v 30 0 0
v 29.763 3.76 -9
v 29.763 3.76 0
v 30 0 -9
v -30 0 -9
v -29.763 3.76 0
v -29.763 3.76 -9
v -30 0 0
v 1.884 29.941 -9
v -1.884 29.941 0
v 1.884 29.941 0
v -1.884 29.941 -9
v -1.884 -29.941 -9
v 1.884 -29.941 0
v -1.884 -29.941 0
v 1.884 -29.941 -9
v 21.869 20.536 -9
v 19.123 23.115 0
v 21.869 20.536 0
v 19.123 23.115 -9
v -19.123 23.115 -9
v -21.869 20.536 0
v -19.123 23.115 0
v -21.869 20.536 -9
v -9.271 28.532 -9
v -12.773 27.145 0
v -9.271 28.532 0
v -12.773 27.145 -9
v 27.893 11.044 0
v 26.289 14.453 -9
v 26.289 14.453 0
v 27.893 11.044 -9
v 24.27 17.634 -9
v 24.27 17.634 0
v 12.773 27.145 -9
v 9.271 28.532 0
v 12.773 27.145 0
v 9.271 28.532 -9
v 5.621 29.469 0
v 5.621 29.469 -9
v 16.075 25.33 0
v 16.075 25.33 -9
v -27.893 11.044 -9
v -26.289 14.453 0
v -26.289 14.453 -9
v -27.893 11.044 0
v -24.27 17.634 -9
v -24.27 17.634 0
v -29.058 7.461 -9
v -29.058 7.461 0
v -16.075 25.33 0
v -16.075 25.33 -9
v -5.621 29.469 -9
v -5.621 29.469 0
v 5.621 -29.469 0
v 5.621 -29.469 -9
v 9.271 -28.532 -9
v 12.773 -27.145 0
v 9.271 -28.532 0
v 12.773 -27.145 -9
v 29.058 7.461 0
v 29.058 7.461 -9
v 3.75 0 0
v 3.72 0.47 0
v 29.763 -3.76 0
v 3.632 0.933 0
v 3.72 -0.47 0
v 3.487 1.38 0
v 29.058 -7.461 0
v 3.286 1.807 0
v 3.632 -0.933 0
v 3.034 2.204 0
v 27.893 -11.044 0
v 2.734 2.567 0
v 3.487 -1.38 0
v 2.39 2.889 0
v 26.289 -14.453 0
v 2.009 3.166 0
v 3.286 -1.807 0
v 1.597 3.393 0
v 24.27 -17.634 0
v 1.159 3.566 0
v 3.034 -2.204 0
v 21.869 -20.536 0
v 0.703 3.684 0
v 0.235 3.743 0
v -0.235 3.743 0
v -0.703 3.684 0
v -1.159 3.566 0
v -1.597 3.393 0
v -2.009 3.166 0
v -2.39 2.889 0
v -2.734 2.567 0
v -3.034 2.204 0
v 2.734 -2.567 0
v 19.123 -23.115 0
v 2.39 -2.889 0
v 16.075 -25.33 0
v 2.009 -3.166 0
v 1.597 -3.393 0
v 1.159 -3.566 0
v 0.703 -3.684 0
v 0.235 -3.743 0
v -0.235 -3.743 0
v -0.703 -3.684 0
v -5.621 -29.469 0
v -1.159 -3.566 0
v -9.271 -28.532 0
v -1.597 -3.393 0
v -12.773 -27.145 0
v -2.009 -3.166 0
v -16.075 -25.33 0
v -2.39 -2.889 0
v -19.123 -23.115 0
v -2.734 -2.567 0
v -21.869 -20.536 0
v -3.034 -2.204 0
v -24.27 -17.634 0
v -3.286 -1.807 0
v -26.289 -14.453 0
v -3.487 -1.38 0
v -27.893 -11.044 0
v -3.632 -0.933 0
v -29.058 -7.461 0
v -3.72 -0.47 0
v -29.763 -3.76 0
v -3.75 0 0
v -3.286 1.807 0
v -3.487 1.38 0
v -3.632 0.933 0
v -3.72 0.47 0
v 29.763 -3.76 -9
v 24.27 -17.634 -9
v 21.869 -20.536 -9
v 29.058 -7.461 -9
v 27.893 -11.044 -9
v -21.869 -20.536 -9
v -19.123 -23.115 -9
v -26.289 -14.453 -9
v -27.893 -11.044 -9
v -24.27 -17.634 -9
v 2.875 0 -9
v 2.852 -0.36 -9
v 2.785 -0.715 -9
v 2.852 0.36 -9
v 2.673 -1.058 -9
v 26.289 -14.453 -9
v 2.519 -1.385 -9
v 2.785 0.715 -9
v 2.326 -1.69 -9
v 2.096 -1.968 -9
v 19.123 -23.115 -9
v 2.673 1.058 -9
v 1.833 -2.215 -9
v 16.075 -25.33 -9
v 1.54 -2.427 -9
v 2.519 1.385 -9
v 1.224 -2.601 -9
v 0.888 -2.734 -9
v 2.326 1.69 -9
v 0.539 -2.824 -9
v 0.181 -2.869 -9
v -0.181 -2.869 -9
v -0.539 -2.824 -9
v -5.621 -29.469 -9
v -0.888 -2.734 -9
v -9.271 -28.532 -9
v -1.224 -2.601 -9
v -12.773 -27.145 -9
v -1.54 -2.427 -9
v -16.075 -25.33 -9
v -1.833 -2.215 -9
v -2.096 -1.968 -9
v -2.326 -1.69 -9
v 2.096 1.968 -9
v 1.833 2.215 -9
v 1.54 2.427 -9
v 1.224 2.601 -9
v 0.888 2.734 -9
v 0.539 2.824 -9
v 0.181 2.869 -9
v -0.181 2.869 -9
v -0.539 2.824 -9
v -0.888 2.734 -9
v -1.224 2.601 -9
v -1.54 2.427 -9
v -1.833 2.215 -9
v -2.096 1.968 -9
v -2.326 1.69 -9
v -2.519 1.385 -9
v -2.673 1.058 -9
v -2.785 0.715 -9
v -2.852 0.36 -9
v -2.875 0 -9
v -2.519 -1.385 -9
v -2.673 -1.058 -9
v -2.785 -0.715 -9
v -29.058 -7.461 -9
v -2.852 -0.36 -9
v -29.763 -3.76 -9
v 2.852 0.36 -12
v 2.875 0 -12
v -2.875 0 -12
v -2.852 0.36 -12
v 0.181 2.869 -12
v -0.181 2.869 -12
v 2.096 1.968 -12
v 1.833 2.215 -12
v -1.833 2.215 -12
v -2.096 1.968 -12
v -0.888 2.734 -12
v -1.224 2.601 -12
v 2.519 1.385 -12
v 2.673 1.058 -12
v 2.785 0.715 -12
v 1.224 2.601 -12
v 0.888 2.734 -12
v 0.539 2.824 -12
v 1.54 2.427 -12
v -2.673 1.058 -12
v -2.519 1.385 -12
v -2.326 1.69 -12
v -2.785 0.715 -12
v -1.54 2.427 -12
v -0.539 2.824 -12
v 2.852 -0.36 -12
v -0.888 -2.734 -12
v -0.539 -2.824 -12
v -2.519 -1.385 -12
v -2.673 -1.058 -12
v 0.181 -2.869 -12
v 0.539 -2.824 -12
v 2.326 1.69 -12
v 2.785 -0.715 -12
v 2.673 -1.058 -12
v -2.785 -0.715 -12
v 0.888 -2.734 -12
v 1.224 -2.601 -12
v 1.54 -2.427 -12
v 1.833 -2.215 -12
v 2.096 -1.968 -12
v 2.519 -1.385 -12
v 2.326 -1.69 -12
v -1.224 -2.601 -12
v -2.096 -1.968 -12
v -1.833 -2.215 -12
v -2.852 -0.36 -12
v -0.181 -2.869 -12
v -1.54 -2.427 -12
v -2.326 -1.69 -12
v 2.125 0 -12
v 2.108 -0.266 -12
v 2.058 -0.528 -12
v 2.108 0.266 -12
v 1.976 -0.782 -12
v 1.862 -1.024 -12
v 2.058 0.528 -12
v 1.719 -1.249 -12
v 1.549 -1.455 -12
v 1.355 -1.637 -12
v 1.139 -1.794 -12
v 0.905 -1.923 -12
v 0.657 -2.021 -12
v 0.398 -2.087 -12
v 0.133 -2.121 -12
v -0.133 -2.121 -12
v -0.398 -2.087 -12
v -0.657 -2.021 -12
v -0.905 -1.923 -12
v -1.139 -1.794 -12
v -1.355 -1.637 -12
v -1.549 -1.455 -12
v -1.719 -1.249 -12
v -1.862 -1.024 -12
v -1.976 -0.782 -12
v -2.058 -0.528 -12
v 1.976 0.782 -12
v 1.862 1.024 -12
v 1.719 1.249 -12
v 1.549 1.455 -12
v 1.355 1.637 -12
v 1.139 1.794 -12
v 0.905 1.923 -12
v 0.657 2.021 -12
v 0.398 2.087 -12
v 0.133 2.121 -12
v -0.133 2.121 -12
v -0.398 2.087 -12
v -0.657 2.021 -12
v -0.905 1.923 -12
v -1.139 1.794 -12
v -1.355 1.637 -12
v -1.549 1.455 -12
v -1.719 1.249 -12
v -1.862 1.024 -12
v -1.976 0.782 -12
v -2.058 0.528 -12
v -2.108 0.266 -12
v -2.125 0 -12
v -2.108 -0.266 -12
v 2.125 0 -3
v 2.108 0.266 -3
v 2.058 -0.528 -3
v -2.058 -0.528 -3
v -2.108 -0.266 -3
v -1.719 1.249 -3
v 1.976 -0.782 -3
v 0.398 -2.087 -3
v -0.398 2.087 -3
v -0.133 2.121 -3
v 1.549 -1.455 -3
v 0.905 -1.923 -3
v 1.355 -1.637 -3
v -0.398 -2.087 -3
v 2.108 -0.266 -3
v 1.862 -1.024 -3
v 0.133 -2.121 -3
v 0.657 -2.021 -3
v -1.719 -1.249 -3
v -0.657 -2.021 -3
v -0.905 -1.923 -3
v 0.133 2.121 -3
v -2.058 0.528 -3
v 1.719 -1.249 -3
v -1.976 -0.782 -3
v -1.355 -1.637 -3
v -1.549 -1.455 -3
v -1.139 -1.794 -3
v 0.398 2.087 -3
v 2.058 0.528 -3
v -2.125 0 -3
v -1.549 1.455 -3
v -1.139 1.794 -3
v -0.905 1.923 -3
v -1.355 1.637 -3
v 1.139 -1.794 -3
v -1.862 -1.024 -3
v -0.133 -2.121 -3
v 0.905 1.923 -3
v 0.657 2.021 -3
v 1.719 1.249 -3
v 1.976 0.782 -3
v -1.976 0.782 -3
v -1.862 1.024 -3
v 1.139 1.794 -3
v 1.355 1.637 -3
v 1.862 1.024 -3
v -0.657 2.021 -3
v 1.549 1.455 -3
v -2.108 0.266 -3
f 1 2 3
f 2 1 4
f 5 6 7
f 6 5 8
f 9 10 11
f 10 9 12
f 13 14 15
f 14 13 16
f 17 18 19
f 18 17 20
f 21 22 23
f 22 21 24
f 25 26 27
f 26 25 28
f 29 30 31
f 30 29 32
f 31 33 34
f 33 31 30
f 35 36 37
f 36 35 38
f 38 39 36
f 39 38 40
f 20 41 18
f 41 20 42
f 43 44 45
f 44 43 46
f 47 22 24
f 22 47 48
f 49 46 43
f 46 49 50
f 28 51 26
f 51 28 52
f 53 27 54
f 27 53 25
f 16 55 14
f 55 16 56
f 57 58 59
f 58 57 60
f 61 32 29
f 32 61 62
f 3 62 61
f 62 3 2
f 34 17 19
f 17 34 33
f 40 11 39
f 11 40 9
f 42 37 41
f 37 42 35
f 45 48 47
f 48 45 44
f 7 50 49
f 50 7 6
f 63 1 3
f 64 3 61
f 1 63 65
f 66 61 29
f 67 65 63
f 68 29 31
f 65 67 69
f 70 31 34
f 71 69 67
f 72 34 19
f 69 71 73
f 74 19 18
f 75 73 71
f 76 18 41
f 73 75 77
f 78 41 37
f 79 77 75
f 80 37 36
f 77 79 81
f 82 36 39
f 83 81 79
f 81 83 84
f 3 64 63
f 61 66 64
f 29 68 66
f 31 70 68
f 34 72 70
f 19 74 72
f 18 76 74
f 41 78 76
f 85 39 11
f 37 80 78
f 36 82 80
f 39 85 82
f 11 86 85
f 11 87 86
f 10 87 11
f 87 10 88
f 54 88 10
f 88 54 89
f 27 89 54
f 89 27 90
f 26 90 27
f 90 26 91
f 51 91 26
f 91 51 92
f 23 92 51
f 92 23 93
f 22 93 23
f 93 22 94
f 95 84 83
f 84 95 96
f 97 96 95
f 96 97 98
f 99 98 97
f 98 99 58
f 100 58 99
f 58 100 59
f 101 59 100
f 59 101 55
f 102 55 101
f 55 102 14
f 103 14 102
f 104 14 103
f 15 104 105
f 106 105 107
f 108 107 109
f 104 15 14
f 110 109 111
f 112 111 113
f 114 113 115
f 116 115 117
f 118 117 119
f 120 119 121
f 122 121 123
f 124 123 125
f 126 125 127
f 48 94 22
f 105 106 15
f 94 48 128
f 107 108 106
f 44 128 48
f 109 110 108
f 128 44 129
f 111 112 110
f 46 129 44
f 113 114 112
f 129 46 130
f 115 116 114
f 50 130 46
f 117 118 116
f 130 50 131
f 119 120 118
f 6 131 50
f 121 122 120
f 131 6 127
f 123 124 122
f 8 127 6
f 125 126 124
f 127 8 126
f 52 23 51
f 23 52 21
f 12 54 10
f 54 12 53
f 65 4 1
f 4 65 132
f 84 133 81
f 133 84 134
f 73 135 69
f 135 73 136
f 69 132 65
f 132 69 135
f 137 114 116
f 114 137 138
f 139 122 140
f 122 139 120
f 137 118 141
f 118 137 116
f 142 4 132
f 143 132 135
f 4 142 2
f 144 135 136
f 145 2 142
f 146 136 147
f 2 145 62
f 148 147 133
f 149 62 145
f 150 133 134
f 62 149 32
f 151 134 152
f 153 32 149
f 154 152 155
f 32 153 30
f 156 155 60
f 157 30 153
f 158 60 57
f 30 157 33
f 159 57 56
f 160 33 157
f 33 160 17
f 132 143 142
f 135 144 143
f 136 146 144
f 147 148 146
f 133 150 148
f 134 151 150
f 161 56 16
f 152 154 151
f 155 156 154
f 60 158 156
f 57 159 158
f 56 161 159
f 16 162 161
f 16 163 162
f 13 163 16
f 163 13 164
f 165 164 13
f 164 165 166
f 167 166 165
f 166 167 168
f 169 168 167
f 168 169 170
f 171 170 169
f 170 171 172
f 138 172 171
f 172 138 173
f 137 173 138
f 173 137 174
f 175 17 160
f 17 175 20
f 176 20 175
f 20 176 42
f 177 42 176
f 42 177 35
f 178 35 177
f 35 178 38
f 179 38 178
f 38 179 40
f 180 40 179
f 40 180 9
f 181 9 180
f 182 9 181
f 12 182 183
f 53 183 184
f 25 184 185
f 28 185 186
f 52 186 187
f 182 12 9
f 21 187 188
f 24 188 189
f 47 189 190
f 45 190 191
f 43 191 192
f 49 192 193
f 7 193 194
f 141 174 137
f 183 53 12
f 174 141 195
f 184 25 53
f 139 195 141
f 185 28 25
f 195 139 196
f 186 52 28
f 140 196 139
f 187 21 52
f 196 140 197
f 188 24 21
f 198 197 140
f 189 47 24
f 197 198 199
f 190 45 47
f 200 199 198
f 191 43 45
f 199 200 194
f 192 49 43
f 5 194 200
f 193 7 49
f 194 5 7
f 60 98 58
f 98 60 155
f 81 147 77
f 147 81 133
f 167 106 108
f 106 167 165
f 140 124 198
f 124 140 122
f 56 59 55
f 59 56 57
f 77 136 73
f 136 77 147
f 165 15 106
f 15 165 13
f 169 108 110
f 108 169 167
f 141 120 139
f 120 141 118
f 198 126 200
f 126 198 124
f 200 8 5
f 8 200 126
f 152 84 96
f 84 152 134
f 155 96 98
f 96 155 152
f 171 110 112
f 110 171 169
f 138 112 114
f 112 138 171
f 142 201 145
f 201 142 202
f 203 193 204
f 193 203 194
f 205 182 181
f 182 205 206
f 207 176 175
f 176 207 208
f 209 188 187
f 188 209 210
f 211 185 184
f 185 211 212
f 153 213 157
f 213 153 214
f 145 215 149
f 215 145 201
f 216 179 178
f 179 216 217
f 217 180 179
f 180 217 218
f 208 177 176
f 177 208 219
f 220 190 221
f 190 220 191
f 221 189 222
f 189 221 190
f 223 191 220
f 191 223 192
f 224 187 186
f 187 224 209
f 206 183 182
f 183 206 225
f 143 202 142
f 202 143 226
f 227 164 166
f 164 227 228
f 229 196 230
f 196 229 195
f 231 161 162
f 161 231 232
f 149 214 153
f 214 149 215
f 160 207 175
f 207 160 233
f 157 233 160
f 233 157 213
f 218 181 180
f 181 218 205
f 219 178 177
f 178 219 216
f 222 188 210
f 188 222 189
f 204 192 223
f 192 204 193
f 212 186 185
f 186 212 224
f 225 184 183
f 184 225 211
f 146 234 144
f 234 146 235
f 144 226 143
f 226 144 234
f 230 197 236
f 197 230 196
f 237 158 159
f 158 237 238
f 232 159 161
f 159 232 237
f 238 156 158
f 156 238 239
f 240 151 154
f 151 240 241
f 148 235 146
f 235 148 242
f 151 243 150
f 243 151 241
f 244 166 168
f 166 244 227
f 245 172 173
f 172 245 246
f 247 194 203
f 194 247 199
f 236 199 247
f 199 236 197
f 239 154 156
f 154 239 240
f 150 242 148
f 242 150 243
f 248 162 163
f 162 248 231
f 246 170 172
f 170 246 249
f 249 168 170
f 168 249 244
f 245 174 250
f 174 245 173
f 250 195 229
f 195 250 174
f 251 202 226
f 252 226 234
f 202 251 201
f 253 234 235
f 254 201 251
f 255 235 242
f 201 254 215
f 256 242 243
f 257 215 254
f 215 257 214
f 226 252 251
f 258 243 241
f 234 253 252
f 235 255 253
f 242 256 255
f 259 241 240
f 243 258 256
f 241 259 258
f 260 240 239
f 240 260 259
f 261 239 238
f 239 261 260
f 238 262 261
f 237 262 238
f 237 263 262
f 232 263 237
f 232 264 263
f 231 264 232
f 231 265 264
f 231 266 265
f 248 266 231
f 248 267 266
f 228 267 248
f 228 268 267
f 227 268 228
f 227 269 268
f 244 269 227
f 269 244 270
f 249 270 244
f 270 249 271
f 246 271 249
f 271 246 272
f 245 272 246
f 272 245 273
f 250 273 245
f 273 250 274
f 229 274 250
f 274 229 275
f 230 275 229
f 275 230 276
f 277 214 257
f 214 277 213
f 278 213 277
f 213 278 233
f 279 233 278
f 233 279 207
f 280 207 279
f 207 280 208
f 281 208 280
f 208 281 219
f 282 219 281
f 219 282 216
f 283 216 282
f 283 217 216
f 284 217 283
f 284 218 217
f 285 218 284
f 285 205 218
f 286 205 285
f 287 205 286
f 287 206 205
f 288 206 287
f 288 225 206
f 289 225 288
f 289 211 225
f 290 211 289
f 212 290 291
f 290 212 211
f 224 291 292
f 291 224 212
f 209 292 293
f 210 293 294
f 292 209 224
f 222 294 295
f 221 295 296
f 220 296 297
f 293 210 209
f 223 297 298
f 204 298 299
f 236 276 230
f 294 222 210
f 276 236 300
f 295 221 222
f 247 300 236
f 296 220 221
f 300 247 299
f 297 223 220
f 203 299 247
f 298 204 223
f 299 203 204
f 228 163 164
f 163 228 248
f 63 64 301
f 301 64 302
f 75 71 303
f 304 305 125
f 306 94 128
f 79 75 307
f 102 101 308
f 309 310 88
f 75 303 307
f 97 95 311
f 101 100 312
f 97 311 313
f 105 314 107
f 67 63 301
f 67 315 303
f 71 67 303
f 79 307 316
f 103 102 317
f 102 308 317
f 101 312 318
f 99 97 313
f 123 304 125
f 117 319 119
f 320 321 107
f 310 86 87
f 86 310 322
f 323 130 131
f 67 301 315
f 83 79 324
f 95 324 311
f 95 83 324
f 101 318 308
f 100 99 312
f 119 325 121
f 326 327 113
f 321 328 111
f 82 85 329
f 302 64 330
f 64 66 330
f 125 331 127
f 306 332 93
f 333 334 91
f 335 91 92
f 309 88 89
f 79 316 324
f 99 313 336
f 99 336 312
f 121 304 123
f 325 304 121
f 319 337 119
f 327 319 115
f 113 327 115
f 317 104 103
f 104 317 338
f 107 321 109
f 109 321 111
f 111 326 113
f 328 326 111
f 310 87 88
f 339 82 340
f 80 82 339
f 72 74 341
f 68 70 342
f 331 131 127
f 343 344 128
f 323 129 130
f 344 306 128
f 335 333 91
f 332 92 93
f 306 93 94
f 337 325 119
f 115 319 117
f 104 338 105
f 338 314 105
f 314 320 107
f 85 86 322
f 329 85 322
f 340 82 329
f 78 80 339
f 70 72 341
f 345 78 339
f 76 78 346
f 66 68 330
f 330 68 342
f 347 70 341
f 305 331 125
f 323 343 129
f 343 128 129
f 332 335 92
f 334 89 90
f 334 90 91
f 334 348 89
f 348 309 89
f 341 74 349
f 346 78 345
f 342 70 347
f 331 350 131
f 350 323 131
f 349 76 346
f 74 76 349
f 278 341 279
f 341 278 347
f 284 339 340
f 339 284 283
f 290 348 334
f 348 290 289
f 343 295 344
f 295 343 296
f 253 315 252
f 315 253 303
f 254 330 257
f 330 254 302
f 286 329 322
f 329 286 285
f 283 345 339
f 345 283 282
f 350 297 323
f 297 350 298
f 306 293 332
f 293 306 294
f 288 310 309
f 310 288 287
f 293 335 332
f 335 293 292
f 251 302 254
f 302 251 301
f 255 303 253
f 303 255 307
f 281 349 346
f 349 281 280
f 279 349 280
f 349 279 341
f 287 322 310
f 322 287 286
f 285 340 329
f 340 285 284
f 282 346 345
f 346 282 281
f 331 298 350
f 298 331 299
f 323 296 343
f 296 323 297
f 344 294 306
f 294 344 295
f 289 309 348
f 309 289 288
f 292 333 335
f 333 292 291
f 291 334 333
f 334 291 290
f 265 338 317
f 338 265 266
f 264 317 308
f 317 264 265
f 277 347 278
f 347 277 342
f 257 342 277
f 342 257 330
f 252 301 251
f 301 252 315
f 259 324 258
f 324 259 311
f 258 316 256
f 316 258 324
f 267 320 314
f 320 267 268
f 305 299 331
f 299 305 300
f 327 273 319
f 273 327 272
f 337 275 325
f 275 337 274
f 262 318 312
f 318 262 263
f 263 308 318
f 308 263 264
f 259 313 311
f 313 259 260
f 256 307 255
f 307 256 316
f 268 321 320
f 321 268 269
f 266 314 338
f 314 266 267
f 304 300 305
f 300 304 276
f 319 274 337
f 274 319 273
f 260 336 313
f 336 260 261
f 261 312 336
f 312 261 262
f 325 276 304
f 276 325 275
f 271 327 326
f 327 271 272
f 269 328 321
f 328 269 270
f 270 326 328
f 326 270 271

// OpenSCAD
$fn = 50;


difference() {
	union() {
		translate(v = [0, 0, -9.0000000000]) {
			cylinder(h = 9, r = 30.0000000000);
		}
		translate(v = [0, 0, -12.0000000000]) {
			cylinder(h = 12, r = 2.8750000000);
		}
	}
	union() {
		translate(v = [0, 0, 0]) {
			rotate(a = [0, 0, 0]) {
				difference() {
					union() {
						translate(v = [0, 0, -12.0000000000]) {
							cylinder(h = 12, r = 2.0000000000);
						}
						translate(v = [0, 0, -3]) {
							cylinder(h = 3, r1 = 2.1250000000, r2 = 3.7500000000);
						}
						translate(v = [0, 0, -12.0000000000]) {
							cylinder(h = 12, r = 2.1250000000);
						}
						translate(v = [0, 0, -12.0000000000]) {
							cylinder(h = 12, r = 2.0000000000);
						}
					}
					union();
				}
			}
		}
	}
}
